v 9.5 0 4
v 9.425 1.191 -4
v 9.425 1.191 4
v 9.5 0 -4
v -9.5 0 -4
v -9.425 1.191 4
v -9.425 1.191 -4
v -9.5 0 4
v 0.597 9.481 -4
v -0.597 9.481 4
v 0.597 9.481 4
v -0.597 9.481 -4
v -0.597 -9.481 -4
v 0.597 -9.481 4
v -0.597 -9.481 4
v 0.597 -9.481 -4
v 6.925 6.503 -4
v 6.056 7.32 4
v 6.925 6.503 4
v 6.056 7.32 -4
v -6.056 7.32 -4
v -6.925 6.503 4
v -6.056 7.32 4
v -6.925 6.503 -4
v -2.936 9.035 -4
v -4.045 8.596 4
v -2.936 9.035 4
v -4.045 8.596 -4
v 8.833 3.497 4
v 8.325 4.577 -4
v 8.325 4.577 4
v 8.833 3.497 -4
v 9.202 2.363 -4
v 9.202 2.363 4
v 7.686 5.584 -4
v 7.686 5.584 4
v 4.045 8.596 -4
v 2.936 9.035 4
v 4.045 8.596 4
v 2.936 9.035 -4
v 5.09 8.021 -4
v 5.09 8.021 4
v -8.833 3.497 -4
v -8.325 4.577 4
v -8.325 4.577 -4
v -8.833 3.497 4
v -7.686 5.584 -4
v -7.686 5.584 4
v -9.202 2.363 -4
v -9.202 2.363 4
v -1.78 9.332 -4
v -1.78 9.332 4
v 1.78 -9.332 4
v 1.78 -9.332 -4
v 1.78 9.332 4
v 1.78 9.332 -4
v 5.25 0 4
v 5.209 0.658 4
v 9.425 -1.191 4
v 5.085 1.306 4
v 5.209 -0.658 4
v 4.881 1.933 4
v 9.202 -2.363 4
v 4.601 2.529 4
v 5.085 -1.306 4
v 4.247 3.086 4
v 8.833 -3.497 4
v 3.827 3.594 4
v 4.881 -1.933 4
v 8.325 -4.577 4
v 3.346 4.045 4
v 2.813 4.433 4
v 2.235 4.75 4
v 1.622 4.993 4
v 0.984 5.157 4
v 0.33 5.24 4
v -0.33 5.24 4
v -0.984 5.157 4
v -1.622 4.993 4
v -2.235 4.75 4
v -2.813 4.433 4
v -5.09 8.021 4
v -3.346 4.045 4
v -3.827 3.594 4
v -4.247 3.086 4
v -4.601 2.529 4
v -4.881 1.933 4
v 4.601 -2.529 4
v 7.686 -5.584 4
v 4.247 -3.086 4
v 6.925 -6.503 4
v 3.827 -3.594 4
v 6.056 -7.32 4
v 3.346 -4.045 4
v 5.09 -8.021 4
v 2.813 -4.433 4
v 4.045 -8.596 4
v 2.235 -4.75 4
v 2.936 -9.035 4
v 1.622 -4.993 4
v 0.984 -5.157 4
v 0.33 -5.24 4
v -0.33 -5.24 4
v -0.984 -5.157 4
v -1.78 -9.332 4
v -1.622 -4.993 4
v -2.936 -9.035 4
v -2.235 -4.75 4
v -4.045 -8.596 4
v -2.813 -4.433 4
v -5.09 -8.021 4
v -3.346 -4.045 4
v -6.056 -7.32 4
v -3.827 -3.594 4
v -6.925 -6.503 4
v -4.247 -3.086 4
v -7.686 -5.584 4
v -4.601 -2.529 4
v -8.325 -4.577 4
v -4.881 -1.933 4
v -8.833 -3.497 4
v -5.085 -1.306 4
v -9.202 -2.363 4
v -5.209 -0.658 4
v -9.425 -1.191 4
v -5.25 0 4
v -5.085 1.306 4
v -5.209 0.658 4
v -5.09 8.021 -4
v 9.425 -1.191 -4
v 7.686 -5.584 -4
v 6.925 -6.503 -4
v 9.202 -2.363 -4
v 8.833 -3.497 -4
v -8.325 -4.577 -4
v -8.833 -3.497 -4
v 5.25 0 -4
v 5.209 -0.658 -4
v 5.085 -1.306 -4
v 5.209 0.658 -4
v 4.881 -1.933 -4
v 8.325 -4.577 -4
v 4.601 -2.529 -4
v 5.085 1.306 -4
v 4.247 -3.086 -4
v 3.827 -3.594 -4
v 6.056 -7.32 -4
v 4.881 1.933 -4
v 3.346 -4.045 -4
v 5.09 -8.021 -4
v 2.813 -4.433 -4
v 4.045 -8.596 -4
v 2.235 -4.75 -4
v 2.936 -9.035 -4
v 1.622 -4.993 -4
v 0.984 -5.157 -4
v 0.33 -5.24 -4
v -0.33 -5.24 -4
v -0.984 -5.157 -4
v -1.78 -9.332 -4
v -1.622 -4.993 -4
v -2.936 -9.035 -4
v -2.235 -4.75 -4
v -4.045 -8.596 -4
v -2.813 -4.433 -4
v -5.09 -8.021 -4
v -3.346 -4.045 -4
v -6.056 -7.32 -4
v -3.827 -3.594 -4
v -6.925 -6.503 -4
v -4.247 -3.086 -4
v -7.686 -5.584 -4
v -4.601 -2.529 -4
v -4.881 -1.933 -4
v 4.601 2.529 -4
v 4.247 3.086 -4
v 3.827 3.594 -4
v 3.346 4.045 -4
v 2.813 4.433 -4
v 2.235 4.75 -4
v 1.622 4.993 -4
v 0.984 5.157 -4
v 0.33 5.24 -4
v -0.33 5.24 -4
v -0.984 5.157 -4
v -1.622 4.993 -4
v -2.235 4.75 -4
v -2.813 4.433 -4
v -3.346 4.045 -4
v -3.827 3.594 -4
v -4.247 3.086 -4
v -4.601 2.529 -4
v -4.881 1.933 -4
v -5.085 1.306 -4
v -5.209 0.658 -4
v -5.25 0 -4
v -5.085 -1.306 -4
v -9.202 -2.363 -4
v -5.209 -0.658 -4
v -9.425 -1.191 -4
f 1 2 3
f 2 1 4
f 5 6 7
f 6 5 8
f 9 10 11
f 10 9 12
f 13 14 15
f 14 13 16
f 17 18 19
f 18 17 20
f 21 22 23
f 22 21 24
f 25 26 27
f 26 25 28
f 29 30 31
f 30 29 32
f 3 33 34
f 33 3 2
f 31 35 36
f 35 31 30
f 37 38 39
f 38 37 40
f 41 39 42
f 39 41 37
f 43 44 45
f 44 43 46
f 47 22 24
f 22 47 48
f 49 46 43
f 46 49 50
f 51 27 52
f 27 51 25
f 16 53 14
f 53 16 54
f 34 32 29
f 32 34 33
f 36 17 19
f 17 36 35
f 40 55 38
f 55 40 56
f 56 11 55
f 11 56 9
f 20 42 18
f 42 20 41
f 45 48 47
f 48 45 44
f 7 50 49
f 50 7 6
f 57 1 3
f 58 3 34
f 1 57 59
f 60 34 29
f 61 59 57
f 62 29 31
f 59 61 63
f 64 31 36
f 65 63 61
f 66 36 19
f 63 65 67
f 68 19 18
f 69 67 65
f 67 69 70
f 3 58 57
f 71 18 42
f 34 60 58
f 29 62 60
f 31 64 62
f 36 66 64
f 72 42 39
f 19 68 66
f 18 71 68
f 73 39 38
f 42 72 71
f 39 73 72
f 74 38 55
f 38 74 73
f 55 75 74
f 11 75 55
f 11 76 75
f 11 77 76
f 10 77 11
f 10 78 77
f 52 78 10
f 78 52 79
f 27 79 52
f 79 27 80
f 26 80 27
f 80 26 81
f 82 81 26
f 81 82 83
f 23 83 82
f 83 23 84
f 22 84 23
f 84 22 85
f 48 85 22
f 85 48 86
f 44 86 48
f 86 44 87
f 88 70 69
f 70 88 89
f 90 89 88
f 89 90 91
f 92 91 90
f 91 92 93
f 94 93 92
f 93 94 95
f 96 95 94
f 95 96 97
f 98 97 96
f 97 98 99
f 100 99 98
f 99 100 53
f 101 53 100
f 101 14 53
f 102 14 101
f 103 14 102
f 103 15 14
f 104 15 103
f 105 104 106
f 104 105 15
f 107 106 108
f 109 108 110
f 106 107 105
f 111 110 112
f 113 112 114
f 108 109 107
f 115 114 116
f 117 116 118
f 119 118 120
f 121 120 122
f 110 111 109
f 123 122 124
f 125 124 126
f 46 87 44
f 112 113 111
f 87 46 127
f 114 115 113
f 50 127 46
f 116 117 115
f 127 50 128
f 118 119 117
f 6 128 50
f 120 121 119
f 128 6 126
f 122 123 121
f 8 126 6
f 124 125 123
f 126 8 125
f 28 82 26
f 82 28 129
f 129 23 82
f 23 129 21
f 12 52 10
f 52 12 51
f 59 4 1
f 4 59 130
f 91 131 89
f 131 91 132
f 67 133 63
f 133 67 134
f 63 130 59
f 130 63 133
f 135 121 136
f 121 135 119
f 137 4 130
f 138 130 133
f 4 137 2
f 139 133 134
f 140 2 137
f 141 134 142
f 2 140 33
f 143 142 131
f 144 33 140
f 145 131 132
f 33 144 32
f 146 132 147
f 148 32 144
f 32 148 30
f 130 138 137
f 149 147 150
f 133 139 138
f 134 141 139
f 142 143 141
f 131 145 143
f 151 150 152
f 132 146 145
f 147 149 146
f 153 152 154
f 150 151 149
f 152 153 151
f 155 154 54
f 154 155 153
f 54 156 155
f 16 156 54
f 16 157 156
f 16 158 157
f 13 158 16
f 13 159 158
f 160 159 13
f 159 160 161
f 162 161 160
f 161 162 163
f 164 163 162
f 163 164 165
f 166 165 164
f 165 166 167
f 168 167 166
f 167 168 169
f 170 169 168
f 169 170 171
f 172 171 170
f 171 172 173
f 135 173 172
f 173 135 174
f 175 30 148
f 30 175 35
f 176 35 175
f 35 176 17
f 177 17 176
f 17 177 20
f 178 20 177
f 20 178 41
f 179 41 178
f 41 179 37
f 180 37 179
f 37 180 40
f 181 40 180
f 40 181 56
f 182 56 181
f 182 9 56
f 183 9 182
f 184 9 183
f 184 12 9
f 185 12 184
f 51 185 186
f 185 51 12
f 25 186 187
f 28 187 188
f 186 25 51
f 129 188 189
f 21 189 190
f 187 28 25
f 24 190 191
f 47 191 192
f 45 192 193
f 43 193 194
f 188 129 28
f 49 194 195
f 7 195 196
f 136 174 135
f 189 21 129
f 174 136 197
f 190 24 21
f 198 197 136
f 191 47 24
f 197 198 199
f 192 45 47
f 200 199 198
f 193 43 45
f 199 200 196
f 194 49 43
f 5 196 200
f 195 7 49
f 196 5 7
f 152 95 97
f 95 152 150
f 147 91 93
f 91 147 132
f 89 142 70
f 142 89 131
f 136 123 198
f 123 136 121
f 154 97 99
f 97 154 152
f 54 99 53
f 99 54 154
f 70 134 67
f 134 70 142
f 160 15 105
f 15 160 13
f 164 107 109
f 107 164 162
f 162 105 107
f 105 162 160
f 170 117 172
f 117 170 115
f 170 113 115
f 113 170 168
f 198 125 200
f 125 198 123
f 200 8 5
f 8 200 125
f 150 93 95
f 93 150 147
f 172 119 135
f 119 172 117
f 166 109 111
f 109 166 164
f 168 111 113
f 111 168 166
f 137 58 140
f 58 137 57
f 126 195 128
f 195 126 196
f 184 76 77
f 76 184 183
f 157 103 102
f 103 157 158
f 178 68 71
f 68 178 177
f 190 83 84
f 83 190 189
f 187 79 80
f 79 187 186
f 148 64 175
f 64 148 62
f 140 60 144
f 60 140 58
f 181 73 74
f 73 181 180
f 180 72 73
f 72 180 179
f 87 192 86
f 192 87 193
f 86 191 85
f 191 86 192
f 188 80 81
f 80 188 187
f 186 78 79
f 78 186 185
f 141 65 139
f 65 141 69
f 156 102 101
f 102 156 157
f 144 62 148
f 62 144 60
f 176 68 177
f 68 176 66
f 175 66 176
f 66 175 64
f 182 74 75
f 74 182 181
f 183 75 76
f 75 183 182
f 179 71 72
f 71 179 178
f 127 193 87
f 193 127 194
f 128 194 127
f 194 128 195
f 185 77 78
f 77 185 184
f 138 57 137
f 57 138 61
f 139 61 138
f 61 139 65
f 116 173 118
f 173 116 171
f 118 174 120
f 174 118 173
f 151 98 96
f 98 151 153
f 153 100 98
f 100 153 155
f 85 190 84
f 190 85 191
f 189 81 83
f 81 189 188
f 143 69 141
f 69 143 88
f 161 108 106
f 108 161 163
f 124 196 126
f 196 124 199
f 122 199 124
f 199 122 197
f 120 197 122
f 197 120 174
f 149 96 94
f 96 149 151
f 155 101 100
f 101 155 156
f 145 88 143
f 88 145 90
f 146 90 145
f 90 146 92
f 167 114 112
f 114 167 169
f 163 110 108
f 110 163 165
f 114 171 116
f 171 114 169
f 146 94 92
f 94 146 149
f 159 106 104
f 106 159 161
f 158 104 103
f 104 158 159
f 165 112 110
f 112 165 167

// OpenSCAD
$fn = 50;


difference() {
	union() {
		translate(v = [0, 0, -4.0000000000]) {
			cylinder(h = 8, r = 9.5000000000);
		}
	}
	union() {
		translate(v = [0, 0, -100.0000000000]) {
			cylinder(h = 200, r = 5.2500000000);
		}
	}
}
